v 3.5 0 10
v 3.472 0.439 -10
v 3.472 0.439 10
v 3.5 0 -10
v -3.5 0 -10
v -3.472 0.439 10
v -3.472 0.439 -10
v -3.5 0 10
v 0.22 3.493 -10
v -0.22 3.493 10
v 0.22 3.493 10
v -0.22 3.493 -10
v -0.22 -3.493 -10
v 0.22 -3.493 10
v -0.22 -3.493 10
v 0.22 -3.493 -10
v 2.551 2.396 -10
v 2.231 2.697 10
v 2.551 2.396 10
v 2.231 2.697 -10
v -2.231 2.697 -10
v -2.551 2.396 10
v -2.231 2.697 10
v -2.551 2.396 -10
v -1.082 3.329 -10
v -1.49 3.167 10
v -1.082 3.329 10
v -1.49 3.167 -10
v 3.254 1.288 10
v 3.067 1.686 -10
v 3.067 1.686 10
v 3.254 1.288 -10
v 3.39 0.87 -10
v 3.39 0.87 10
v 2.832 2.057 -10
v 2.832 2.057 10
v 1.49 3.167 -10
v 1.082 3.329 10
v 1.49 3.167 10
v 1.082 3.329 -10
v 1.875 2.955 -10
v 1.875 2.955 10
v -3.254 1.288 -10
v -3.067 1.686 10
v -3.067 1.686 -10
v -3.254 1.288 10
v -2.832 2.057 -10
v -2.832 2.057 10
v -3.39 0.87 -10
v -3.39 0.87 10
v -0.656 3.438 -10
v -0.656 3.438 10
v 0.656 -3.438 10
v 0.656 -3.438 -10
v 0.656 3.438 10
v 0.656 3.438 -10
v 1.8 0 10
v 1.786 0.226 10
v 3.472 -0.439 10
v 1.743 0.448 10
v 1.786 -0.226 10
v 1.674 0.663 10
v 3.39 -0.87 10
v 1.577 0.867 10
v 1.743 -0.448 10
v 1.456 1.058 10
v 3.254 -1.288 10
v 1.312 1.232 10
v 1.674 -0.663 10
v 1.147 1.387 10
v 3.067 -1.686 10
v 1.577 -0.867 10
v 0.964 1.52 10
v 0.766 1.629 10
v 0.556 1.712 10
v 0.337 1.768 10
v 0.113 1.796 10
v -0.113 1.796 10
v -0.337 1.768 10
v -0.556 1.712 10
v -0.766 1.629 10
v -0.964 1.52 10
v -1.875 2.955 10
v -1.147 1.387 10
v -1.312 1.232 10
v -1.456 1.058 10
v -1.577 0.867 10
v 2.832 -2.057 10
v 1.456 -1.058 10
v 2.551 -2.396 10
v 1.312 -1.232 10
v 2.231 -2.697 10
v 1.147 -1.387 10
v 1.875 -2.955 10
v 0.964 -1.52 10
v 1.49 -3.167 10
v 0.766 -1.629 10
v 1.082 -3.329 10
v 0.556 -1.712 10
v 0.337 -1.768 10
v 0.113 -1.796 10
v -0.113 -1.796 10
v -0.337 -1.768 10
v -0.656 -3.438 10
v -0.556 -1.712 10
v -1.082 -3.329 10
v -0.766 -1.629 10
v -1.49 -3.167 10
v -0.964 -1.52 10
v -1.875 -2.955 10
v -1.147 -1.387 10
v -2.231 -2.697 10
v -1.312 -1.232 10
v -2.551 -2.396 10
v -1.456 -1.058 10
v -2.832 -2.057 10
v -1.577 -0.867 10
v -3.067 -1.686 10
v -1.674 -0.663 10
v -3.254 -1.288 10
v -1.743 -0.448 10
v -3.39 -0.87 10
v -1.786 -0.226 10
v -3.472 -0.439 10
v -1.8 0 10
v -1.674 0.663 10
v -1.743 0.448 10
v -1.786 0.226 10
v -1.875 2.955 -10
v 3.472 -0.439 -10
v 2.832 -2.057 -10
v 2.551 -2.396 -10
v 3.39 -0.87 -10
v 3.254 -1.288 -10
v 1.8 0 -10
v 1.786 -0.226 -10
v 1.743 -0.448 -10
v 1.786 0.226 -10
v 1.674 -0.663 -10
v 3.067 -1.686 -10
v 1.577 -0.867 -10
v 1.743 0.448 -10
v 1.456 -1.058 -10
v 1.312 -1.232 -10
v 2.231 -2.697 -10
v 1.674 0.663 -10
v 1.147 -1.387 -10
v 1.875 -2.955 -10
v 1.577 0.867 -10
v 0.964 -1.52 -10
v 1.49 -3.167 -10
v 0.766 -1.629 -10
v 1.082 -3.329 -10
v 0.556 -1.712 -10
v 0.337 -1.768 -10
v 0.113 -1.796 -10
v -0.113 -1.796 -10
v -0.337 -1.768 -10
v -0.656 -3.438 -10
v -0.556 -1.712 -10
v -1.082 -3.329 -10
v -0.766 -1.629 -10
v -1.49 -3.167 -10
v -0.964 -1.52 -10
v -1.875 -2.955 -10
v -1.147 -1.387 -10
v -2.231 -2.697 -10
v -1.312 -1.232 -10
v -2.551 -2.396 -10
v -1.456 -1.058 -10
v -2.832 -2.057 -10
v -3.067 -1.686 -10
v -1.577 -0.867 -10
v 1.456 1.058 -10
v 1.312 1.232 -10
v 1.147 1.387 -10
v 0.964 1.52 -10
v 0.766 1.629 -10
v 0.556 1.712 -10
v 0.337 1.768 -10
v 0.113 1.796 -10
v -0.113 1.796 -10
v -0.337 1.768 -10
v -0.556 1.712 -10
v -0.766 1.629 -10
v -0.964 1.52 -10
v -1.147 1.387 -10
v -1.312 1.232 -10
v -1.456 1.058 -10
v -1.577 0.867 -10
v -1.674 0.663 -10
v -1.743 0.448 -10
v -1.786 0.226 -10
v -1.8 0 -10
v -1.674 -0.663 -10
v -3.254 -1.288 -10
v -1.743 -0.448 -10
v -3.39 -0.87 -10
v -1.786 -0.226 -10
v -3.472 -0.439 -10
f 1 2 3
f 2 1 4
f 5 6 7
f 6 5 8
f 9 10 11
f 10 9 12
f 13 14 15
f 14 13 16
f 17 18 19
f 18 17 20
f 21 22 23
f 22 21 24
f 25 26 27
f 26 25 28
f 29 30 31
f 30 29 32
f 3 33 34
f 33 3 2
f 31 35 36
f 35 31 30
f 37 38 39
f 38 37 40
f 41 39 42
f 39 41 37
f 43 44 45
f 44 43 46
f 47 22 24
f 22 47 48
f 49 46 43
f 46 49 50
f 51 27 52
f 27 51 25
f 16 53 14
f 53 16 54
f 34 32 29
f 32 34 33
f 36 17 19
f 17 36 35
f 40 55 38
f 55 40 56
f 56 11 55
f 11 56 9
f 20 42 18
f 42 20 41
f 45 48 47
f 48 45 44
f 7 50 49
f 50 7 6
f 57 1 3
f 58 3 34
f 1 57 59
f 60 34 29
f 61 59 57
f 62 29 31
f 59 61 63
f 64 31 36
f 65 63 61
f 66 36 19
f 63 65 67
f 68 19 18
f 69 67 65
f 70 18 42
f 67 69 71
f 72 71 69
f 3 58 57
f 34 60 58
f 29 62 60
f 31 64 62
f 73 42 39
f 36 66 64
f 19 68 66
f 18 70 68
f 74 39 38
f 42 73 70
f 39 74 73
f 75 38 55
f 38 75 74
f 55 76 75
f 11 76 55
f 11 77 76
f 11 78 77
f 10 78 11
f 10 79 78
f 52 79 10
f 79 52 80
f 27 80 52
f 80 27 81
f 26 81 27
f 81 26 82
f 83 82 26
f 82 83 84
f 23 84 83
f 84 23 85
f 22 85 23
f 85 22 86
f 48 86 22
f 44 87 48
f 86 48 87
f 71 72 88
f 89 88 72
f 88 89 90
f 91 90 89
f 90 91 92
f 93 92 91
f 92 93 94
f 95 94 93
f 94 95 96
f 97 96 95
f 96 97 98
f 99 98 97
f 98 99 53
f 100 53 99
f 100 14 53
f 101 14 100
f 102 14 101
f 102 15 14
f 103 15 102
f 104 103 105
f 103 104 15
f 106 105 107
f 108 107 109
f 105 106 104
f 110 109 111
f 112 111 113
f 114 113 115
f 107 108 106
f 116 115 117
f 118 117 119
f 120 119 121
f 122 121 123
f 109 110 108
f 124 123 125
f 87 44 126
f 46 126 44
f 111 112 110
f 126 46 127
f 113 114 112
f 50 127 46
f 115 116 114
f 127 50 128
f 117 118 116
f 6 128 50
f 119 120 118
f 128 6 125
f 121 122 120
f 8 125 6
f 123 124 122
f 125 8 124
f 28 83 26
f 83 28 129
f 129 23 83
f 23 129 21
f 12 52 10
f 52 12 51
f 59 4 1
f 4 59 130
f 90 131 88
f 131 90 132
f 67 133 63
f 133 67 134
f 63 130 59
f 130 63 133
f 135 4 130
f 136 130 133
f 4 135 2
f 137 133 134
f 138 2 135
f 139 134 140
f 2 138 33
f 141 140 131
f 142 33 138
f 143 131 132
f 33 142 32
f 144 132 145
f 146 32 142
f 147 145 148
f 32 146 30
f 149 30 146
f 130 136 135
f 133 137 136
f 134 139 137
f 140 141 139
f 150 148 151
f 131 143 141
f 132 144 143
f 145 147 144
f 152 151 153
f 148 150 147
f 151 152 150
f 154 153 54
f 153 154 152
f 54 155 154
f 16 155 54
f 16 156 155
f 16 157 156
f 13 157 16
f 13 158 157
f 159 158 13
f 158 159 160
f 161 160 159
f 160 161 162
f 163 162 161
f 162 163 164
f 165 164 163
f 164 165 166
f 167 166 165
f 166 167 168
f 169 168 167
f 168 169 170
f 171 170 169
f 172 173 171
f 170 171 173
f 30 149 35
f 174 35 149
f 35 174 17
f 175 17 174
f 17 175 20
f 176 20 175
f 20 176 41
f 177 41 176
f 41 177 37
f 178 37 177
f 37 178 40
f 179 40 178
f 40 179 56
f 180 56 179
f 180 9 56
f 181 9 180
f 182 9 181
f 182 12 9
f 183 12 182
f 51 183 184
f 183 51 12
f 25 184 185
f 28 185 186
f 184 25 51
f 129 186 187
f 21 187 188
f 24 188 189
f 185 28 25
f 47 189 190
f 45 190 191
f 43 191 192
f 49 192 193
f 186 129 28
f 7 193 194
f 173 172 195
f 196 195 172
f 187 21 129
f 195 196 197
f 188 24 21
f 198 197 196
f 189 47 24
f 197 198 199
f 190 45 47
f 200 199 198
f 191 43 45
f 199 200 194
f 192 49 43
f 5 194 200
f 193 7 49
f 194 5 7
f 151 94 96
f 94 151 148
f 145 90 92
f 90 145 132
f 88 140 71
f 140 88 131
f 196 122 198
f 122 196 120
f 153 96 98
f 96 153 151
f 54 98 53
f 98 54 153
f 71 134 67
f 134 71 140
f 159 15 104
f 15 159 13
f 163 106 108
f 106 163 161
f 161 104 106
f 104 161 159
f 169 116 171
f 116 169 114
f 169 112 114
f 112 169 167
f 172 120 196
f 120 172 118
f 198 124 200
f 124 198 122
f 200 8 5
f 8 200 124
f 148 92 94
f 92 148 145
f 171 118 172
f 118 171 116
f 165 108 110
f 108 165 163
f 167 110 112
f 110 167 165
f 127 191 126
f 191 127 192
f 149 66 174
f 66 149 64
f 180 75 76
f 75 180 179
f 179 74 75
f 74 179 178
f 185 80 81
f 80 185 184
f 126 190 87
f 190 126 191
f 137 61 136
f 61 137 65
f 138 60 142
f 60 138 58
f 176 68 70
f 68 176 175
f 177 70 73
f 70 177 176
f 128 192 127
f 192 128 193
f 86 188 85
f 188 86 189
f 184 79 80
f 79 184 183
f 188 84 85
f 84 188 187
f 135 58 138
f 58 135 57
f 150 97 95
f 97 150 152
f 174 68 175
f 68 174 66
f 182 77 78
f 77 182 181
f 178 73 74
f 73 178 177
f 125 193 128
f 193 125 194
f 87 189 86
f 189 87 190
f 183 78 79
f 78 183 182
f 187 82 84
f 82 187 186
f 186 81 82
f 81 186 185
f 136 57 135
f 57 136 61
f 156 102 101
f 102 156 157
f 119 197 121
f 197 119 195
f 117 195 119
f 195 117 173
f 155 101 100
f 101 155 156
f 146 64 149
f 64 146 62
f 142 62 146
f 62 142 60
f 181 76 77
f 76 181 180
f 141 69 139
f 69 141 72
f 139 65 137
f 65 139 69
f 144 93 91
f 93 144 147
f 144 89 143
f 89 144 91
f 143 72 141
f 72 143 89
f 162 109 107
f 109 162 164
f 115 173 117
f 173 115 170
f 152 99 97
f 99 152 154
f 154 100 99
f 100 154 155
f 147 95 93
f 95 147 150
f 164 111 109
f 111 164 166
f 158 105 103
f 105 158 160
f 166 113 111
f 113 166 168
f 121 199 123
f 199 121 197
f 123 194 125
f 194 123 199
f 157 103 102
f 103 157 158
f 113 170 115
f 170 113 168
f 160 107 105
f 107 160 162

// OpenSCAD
$fn = 50;


difference() {
	union() {
		translate(v = [0, 0, -10.0000000000]) {
			cylinder(h = 20, r = 3.5000000000);
		}
	}
	union() {
		translate(v = [0, 0, -100.0000000000]) {
			cylinder(h = 200, r = 1.8000000000);
		}
	}
}
